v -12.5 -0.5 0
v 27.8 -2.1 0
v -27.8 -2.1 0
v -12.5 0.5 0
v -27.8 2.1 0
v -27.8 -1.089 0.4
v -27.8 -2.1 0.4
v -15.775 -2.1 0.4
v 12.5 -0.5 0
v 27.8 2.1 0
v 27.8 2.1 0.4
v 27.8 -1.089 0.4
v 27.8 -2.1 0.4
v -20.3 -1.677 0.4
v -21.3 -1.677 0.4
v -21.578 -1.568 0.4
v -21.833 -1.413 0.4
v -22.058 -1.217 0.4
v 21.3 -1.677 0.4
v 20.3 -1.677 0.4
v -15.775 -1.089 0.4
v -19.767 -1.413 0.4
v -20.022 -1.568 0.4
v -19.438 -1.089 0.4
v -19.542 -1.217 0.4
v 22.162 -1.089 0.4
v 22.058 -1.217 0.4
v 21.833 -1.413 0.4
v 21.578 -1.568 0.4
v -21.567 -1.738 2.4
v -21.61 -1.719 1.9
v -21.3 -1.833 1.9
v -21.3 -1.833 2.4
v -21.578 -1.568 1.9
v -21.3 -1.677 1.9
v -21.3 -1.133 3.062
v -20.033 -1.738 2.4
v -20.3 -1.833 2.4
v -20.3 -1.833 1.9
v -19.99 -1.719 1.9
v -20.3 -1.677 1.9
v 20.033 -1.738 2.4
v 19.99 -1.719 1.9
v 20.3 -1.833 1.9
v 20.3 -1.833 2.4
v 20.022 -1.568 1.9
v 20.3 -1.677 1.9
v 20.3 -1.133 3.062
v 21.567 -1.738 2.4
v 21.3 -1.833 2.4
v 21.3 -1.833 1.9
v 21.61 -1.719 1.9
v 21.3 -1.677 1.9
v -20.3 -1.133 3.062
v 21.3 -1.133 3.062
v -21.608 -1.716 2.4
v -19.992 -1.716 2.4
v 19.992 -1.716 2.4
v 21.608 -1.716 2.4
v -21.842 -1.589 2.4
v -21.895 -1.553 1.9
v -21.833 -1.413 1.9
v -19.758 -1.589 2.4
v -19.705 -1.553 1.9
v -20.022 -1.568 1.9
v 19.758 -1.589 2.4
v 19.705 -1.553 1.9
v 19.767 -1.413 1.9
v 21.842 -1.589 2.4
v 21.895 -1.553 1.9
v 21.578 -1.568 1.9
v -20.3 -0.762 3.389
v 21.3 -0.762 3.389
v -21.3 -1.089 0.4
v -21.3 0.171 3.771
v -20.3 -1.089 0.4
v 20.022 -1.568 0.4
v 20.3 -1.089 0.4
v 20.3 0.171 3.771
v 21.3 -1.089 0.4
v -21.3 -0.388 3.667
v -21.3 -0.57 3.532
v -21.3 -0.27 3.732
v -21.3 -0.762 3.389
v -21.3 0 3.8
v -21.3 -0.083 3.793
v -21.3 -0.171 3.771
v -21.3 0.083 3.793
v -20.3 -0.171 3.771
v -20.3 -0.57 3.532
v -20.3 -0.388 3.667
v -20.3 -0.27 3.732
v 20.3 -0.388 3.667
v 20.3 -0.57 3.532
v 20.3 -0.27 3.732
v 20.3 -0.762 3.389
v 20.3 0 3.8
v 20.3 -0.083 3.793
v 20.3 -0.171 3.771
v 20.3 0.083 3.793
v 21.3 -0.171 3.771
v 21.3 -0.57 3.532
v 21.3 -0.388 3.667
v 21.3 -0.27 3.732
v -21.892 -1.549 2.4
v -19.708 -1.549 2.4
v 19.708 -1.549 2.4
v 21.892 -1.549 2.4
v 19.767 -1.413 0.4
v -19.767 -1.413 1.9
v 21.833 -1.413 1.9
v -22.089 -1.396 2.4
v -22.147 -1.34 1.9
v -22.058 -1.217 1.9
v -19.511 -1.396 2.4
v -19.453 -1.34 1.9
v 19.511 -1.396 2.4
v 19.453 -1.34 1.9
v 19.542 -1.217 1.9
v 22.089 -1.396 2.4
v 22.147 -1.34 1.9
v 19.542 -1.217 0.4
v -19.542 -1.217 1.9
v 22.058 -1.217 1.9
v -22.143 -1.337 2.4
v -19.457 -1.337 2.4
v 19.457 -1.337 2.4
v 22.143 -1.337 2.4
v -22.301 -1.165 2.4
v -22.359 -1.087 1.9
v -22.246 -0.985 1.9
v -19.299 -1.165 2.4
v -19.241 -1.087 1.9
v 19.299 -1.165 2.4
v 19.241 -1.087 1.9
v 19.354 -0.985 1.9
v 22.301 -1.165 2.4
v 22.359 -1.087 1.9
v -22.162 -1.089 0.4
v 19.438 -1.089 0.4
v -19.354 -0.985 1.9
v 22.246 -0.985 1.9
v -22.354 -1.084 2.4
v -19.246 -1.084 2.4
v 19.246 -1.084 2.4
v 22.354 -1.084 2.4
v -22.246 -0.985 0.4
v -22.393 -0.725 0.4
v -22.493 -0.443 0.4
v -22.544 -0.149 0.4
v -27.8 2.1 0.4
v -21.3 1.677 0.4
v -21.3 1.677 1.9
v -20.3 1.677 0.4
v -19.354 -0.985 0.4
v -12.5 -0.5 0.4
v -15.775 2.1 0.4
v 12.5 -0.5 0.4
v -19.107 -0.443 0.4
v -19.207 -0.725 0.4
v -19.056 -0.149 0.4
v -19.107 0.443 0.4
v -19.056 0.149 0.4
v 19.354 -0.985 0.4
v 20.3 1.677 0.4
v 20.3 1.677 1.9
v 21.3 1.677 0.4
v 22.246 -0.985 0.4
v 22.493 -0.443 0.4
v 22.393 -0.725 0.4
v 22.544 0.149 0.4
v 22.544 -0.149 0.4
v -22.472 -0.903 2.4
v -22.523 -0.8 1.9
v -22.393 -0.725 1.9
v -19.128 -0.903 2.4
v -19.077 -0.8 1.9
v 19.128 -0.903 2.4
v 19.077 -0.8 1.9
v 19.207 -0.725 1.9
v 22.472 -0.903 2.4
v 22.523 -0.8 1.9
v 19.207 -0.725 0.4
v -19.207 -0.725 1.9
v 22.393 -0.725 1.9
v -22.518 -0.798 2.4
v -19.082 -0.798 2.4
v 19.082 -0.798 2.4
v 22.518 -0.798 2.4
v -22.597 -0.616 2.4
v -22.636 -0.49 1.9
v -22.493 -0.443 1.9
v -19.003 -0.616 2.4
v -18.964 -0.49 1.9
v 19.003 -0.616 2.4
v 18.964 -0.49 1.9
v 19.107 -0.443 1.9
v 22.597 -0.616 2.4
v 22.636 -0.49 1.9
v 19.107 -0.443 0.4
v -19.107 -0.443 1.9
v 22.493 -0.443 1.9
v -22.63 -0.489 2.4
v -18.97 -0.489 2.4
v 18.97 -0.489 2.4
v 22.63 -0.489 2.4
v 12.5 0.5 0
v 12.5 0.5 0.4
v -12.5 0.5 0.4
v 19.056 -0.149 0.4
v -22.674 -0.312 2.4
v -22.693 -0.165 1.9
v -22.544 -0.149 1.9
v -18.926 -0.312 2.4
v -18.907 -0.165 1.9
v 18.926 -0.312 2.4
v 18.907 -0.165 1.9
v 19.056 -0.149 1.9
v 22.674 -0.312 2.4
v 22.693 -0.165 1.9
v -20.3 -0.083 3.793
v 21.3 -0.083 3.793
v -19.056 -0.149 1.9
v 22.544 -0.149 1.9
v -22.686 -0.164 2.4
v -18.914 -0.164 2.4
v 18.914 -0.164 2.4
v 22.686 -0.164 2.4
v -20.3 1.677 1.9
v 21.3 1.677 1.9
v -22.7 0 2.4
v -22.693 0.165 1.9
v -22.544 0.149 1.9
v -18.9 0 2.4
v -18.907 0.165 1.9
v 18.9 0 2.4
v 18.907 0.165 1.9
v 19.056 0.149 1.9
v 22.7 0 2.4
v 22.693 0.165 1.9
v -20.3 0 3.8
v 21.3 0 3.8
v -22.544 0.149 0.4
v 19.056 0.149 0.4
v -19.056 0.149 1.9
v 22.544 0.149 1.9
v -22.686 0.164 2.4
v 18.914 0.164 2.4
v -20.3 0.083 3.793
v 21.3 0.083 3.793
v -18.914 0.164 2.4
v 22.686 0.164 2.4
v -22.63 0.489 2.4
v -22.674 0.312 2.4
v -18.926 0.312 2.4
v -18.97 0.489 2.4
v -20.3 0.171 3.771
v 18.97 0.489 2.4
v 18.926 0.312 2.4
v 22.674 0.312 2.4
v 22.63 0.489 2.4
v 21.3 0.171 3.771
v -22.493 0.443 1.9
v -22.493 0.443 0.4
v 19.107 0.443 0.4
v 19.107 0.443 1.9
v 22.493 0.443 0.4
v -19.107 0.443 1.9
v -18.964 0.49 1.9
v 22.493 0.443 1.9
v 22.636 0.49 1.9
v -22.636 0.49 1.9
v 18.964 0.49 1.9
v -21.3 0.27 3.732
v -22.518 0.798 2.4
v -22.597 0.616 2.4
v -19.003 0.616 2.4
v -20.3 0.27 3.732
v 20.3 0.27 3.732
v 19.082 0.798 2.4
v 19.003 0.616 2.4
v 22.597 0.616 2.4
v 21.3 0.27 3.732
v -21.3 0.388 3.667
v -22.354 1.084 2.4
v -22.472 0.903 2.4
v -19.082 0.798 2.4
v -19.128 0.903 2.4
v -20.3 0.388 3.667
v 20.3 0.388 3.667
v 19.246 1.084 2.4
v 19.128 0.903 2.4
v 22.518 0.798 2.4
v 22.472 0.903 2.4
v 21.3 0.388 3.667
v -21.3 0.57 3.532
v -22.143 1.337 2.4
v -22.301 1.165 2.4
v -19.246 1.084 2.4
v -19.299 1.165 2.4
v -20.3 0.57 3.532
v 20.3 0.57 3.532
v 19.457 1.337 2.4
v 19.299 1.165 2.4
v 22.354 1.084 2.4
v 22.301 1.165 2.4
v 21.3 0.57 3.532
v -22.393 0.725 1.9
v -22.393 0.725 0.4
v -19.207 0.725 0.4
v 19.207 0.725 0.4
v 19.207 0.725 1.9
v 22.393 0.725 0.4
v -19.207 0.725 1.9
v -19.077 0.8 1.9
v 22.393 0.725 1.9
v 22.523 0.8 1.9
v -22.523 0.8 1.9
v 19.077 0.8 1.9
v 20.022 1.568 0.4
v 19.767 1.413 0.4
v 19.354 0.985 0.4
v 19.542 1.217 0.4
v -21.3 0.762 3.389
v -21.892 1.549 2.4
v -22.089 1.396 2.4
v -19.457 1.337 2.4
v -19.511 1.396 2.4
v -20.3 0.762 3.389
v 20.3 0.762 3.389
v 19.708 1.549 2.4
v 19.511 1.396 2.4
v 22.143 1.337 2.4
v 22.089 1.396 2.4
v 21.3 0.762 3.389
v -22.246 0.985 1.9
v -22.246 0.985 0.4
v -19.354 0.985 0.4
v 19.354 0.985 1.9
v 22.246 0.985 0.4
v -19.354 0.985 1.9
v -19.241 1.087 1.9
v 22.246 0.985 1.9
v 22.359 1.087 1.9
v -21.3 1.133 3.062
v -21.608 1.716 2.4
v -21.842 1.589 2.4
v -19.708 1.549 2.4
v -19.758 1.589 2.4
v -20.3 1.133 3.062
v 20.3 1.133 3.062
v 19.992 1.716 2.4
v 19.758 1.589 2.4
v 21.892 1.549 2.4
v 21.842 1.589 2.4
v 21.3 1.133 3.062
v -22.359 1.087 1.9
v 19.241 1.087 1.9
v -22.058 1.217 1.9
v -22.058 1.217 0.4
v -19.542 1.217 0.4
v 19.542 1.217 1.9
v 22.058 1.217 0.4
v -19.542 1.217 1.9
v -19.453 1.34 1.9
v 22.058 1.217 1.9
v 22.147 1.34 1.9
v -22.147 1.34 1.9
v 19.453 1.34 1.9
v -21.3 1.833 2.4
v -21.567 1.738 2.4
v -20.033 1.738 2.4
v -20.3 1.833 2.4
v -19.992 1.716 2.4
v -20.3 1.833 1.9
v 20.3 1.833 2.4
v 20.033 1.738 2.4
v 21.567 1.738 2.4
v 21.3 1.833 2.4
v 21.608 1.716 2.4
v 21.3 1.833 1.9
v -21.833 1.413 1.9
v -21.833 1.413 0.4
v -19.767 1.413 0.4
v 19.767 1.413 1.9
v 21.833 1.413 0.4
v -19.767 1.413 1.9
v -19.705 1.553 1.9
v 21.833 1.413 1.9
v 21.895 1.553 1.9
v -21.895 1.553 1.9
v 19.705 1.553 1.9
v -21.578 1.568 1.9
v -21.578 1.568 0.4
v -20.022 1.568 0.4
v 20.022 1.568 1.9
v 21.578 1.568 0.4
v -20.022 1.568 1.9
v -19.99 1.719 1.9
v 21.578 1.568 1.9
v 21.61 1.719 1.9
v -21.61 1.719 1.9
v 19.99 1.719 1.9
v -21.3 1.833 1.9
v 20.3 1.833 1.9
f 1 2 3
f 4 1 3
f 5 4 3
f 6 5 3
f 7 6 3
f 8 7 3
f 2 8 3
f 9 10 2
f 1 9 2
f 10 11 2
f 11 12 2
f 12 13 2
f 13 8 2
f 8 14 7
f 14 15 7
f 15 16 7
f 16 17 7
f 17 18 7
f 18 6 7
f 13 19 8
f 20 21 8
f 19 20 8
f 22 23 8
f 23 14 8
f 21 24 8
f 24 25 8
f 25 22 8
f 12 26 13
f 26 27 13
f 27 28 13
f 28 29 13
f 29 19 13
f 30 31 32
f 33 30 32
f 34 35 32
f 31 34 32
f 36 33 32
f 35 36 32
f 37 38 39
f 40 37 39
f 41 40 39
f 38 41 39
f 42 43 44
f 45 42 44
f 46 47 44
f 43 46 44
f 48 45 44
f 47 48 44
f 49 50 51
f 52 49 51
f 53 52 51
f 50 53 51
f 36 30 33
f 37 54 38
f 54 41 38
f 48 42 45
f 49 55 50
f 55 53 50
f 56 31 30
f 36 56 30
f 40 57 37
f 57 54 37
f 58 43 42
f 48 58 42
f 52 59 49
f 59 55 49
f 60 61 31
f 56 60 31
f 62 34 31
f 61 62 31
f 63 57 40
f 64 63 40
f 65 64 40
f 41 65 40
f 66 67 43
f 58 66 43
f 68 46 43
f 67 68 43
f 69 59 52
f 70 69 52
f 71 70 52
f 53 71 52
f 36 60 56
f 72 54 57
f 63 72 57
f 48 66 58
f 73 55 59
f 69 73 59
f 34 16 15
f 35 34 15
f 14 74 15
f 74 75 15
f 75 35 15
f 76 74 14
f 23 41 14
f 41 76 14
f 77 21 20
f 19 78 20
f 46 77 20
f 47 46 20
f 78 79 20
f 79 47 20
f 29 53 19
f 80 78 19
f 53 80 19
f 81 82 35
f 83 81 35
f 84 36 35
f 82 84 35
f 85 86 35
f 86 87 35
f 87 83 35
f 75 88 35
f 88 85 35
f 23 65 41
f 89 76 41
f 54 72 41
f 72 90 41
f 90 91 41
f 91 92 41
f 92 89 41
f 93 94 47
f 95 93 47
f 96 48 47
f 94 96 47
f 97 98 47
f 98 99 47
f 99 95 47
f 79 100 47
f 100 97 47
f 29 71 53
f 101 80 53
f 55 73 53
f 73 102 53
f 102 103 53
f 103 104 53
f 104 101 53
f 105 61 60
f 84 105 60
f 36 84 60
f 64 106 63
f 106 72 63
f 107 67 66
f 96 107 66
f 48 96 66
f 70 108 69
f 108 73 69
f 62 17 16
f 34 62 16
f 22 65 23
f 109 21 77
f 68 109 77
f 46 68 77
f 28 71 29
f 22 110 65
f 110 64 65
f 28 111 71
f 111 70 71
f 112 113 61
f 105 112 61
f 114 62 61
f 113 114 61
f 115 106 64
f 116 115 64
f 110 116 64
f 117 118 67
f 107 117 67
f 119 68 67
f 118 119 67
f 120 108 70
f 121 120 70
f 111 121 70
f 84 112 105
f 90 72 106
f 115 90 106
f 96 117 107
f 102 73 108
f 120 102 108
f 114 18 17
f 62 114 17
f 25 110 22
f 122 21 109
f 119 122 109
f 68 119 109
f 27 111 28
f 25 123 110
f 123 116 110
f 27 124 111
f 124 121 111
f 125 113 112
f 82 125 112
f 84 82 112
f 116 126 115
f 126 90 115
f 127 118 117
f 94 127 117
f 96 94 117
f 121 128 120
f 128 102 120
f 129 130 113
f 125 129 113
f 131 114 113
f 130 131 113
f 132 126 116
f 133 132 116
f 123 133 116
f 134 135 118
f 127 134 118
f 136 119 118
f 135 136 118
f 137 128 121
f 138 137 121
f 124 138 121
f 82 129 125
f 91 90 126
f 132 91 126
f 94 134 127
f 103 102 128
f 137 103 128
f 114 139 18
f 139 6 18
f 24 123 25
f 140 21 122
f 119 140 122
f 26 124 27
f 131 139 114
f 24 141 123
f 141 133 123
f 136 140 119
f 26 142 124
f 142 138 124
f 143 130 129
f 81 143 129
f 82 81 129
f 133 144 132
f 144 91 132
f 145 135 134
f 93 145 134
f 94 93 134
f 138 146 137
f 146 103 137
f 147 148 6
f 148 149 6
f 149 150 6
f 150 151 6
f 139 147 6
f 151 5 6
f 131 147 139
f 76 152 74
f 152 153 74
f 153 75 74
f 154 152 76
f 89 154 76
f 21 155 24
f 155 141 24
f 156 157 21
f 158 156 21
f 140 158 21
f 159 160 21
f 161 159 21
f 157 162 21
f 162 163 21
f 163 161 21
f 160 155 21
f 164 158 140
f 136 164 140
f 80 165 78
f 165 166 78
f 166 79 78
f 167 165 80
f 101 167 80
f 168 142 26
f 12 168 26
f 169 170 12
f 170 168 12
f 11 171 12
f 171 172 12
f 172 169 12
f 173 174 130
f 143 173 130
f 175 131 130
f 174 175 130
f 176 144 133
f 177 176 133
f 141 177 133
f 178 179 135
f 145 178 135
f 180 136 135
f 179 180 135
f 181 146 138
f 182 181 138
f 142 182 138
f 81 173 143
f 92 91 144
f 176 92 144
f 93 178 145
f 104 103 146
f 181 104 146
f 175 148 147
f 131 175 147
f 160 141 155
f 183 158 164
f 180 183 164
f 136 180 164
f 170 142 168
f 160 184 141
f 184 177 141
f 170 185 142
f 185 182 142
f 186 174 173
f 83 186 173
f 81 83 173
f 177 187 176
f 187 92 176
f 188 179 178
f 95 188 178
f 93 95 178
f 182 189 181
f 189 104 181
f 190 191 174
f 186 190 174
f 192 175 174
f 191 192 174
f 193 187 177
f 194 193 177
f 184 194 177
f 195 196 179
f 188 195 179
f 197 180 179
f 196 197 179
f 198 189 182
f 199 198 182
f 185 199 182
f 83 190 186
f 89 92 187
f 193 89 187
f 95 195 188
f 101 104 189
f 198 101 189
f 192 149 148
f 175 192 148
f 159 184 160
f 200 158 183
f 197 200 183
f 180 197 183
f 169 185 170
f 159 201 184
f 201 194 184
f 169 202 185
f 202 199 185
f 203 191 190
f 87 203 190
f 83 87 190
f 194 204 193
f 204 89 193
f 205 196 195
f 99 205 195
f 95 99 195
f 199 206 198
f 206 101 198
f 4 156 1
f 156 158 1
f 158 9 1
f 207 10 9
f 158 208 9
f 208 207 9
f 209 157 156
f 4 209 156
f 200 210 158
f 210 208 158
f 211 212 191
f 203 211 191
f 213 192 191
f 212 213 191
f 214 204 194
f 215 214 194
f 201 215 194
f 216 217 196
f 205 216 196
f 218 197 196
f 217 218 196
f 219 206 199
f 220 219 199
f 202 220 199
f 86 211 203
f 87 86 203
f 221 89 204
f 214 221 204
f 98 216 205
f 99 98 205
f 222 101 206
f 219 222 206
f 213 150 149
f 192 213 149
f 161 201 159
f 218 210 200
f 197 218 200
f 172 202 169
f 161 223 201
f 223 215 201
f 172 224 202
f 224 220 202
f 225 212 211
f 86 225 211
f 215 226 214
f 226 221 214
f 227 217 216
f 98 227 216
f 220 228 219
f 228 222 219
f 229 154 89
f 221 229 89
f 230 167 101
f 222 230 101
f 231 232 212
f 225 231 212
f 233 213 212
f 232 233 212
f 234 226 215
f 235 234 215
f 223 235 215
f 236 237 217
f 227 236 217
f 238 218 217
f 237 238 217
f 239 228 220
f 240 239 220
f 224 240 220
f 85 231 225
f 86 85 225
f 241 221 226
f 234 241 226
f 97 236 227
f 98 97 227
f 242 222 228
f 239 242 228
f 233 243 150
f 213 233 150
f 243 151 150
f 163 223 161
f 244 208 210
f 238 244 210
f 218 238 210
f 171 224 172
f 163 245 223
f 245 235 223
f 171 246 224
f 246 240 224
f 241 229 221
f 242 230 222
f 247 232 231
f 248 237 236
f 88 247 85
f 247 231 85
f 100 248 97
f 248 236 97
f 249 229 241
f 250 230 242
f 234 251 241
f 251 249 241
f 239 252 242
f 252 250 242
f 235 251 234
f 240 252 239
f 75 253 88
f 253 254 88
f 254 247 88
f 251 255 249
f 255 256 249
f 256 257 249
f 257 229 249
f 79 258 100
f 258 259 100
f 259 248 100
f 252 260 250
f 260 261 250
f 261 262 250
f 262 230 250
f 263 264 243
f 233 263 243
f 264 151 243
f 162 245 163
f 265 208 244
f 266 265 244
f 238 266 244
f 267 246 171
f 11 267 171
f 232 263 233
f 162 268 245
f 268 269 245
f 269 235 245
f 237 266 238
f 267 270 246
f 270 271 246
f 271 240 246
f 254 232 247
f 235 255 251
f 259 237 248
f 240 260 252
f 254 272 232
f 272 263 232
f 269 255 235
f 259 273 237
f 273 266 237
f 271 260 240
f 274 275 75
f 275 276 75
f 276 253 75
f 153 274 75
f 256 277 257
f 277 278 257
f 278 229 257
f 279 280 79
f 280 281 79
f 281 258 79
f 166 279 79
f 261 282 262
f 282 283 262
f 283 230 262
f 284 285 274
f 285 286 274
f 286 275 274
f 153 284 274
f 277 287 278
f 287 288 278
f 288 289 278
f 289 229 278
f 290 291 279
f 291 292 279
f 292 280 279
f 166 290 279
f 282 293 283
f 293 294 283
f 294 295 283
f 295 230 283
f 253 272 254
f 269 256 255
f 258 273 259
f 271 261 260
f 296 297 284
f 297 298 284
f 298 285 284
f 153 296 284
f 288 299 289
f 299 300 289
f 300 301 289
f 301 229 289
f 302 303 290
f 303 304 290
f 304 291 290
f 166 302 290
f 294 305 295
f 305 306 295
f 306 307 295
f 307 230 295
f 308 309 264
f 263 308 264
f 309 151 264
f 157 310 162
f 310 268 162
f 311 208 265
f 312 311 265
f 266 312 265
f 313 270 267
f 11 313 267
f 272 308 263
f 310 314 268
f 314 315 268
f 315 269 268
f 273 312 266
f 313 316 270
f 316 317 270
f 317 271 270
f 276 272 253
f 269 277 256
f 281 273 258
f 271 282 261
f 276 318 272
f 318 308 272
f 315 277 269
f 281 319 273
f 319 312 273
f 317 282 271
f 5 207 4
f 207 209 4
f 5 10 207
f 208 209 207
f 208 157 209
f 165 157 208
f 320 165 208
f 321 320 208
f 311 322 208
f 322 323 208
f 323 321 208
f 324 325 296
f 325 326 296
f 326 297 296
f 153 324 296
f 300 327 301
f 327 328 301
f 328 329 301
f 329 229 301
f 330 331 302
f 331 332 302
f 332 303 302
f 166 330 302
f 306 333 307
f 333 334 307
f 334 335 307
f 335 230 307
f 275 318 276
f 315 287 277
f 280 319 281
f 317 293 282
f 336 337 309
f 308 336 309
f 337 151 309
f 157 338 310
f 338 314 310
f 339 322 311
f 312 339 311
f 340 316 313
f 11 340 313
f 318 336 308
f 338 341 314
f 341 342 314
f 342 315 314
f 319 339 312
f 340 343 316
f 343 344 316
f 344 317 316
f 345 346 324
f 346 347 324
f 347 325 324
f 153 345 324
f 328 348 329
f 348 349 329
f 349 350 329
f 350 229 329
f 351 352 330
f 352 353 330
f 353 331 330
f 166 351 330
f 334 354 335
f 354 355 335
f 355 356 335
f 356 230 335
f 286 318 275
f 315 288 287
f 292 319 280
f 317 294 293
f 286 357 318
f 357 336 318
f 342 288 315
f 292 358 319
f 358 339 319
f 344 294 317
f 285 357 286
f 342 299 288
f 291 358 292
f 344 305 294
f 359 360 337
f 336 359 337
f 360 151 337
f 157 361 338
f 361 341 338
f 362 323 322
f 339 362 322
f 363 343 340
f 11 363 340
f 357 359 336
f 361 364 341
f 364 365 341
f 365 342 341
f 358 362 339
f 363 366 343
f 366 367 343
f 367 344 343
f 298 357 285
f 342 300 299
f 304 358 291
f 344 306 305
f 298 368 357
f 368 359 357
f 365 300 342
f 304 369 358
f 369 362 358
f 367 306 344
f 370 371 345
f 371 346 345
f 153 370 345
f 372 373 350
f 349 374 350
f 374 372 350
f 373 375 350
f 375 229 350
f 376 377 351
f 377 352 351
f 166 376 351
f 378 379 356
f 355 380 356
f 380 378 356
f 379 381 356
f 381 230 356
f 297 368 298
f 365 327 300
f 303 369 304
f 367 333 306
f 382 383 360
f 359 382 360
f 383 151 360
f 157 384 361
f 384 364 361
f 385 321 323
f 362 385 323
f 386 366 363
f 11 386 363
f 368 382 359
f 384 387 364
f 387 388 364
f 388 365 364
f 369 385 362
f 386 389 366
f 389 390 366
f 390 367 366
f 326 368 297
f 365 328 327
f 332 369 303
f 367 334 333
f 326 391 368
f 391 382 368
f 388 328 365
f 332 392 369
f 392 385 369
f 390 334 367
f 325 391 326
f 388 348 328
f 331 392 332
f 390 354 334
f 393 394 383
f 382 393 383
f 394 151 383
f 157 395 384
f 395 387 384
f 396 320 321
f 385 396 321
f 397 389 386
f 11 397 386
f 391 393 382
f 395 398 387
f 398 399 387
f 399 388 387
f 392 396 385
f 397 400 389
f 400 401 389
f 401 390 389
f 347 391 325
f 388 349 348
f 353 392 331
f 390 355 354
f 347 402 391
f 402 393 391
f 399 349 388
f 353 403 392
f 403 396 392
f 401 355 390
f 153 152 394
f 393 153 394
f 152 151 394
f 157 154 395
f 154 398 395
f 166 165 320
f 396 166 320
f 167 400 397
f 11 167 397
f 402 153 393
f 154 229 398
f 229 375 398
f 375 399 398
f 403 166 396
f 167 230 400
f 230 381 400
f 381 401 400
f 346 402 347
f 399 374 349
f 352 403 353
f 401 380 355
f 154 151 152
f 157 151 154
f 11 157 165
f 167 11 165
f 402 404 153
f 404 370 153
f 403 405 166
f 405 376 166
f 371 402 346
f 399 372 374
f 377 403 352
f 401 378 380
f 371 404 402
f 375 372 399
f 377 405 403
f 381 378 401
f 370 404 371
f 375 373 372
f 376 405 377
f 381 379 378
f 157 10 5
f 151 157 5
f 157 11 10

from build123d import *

# Parameters (mm, degrees)
SKICA2_W                 = 55.6
SKICA2_H                 = 4.2
SKICA2_W_2               = 25
SKICA2_H_2               = 1
P_IDAT_VYSUNUT_M2_DEPTH  = 0.4
SKICA3_R                 = 1.75
P_IDAT_VYSUNUT_M3_DEPTH  = 1.5
SKICA5_R                 = 1.9
P_IDAT_VYSUNUT_M5_DEPTH  = 2
ZKOSEN_2_SIZE            = 1.5
SKICA7_W                 = 1
SKICA7_H                 = 5
ODEBRAT_VYSUNUT_M1_DEPTH = 3.5


with BuildPart() as part:
    # Skica2 → Přidat vysunutím2 (new body)
    with BuildSketch(Plane.XY):
        Rectangle(SKICA2_W, SKICA2_H)
        Rectangle(SKICA2_W_2, SKICA2_H_2, mode=Mode.SUBTRACT)
    extrude(amount=P_IDAT_VYSUNUT_M2_DEPTH)

    # Skica3 → Přidat vysunutím3 (add)
    with BuildSketch(Plane.XY.offset(0.4)):
        with Locations((-20.8, 0)):
            Circle(SKICA3_R)
        with Locations((20.8, 0)):
            Circle(SKICA3_R)
    extrude(amount=P_IDAT_VYSUNUT_M3_DEPTH)

    # Skica5 → Přidat vysunutím5 (add)
    with BuildSketch(Plane.XY.offset(1.9)):
        with Locations((-20.8, 0)):
            Circle(SKICA5_R)
        with Locations((20.8, 0)):
            Circle(SKICA5_R)
    extrude(amount=P_IDAT_VYSUNUT_M5_DEPTH)

    # Zkosení2
    zkosen_2_edges = [part.edges().sort_by_distance(p)[0] for p in [
        (-22.7, 0, 3.9),
        (18.9, 0, 3.9),
    ]]
    chamfer(zkosen_2_edges, length=ZKOSEN_2_SIZE)

    # Skica7 → Odebrat vysunutím1 (cut)
    with BuildSketch(Plane.XY.offset(3.9)):
        with Locations((-20.8, 0)):
            Rectangle(SKICA7_W, SKICA7_H)
        with Locations((20.8, 0)):
            Rectangle(SKICA7_W, SKICA7_H)
    extrude(amount=-ODEBRAT_VYSUNUT_M1_DEPTH, mode=Mode.SUBTRACT)


solid = part.part
